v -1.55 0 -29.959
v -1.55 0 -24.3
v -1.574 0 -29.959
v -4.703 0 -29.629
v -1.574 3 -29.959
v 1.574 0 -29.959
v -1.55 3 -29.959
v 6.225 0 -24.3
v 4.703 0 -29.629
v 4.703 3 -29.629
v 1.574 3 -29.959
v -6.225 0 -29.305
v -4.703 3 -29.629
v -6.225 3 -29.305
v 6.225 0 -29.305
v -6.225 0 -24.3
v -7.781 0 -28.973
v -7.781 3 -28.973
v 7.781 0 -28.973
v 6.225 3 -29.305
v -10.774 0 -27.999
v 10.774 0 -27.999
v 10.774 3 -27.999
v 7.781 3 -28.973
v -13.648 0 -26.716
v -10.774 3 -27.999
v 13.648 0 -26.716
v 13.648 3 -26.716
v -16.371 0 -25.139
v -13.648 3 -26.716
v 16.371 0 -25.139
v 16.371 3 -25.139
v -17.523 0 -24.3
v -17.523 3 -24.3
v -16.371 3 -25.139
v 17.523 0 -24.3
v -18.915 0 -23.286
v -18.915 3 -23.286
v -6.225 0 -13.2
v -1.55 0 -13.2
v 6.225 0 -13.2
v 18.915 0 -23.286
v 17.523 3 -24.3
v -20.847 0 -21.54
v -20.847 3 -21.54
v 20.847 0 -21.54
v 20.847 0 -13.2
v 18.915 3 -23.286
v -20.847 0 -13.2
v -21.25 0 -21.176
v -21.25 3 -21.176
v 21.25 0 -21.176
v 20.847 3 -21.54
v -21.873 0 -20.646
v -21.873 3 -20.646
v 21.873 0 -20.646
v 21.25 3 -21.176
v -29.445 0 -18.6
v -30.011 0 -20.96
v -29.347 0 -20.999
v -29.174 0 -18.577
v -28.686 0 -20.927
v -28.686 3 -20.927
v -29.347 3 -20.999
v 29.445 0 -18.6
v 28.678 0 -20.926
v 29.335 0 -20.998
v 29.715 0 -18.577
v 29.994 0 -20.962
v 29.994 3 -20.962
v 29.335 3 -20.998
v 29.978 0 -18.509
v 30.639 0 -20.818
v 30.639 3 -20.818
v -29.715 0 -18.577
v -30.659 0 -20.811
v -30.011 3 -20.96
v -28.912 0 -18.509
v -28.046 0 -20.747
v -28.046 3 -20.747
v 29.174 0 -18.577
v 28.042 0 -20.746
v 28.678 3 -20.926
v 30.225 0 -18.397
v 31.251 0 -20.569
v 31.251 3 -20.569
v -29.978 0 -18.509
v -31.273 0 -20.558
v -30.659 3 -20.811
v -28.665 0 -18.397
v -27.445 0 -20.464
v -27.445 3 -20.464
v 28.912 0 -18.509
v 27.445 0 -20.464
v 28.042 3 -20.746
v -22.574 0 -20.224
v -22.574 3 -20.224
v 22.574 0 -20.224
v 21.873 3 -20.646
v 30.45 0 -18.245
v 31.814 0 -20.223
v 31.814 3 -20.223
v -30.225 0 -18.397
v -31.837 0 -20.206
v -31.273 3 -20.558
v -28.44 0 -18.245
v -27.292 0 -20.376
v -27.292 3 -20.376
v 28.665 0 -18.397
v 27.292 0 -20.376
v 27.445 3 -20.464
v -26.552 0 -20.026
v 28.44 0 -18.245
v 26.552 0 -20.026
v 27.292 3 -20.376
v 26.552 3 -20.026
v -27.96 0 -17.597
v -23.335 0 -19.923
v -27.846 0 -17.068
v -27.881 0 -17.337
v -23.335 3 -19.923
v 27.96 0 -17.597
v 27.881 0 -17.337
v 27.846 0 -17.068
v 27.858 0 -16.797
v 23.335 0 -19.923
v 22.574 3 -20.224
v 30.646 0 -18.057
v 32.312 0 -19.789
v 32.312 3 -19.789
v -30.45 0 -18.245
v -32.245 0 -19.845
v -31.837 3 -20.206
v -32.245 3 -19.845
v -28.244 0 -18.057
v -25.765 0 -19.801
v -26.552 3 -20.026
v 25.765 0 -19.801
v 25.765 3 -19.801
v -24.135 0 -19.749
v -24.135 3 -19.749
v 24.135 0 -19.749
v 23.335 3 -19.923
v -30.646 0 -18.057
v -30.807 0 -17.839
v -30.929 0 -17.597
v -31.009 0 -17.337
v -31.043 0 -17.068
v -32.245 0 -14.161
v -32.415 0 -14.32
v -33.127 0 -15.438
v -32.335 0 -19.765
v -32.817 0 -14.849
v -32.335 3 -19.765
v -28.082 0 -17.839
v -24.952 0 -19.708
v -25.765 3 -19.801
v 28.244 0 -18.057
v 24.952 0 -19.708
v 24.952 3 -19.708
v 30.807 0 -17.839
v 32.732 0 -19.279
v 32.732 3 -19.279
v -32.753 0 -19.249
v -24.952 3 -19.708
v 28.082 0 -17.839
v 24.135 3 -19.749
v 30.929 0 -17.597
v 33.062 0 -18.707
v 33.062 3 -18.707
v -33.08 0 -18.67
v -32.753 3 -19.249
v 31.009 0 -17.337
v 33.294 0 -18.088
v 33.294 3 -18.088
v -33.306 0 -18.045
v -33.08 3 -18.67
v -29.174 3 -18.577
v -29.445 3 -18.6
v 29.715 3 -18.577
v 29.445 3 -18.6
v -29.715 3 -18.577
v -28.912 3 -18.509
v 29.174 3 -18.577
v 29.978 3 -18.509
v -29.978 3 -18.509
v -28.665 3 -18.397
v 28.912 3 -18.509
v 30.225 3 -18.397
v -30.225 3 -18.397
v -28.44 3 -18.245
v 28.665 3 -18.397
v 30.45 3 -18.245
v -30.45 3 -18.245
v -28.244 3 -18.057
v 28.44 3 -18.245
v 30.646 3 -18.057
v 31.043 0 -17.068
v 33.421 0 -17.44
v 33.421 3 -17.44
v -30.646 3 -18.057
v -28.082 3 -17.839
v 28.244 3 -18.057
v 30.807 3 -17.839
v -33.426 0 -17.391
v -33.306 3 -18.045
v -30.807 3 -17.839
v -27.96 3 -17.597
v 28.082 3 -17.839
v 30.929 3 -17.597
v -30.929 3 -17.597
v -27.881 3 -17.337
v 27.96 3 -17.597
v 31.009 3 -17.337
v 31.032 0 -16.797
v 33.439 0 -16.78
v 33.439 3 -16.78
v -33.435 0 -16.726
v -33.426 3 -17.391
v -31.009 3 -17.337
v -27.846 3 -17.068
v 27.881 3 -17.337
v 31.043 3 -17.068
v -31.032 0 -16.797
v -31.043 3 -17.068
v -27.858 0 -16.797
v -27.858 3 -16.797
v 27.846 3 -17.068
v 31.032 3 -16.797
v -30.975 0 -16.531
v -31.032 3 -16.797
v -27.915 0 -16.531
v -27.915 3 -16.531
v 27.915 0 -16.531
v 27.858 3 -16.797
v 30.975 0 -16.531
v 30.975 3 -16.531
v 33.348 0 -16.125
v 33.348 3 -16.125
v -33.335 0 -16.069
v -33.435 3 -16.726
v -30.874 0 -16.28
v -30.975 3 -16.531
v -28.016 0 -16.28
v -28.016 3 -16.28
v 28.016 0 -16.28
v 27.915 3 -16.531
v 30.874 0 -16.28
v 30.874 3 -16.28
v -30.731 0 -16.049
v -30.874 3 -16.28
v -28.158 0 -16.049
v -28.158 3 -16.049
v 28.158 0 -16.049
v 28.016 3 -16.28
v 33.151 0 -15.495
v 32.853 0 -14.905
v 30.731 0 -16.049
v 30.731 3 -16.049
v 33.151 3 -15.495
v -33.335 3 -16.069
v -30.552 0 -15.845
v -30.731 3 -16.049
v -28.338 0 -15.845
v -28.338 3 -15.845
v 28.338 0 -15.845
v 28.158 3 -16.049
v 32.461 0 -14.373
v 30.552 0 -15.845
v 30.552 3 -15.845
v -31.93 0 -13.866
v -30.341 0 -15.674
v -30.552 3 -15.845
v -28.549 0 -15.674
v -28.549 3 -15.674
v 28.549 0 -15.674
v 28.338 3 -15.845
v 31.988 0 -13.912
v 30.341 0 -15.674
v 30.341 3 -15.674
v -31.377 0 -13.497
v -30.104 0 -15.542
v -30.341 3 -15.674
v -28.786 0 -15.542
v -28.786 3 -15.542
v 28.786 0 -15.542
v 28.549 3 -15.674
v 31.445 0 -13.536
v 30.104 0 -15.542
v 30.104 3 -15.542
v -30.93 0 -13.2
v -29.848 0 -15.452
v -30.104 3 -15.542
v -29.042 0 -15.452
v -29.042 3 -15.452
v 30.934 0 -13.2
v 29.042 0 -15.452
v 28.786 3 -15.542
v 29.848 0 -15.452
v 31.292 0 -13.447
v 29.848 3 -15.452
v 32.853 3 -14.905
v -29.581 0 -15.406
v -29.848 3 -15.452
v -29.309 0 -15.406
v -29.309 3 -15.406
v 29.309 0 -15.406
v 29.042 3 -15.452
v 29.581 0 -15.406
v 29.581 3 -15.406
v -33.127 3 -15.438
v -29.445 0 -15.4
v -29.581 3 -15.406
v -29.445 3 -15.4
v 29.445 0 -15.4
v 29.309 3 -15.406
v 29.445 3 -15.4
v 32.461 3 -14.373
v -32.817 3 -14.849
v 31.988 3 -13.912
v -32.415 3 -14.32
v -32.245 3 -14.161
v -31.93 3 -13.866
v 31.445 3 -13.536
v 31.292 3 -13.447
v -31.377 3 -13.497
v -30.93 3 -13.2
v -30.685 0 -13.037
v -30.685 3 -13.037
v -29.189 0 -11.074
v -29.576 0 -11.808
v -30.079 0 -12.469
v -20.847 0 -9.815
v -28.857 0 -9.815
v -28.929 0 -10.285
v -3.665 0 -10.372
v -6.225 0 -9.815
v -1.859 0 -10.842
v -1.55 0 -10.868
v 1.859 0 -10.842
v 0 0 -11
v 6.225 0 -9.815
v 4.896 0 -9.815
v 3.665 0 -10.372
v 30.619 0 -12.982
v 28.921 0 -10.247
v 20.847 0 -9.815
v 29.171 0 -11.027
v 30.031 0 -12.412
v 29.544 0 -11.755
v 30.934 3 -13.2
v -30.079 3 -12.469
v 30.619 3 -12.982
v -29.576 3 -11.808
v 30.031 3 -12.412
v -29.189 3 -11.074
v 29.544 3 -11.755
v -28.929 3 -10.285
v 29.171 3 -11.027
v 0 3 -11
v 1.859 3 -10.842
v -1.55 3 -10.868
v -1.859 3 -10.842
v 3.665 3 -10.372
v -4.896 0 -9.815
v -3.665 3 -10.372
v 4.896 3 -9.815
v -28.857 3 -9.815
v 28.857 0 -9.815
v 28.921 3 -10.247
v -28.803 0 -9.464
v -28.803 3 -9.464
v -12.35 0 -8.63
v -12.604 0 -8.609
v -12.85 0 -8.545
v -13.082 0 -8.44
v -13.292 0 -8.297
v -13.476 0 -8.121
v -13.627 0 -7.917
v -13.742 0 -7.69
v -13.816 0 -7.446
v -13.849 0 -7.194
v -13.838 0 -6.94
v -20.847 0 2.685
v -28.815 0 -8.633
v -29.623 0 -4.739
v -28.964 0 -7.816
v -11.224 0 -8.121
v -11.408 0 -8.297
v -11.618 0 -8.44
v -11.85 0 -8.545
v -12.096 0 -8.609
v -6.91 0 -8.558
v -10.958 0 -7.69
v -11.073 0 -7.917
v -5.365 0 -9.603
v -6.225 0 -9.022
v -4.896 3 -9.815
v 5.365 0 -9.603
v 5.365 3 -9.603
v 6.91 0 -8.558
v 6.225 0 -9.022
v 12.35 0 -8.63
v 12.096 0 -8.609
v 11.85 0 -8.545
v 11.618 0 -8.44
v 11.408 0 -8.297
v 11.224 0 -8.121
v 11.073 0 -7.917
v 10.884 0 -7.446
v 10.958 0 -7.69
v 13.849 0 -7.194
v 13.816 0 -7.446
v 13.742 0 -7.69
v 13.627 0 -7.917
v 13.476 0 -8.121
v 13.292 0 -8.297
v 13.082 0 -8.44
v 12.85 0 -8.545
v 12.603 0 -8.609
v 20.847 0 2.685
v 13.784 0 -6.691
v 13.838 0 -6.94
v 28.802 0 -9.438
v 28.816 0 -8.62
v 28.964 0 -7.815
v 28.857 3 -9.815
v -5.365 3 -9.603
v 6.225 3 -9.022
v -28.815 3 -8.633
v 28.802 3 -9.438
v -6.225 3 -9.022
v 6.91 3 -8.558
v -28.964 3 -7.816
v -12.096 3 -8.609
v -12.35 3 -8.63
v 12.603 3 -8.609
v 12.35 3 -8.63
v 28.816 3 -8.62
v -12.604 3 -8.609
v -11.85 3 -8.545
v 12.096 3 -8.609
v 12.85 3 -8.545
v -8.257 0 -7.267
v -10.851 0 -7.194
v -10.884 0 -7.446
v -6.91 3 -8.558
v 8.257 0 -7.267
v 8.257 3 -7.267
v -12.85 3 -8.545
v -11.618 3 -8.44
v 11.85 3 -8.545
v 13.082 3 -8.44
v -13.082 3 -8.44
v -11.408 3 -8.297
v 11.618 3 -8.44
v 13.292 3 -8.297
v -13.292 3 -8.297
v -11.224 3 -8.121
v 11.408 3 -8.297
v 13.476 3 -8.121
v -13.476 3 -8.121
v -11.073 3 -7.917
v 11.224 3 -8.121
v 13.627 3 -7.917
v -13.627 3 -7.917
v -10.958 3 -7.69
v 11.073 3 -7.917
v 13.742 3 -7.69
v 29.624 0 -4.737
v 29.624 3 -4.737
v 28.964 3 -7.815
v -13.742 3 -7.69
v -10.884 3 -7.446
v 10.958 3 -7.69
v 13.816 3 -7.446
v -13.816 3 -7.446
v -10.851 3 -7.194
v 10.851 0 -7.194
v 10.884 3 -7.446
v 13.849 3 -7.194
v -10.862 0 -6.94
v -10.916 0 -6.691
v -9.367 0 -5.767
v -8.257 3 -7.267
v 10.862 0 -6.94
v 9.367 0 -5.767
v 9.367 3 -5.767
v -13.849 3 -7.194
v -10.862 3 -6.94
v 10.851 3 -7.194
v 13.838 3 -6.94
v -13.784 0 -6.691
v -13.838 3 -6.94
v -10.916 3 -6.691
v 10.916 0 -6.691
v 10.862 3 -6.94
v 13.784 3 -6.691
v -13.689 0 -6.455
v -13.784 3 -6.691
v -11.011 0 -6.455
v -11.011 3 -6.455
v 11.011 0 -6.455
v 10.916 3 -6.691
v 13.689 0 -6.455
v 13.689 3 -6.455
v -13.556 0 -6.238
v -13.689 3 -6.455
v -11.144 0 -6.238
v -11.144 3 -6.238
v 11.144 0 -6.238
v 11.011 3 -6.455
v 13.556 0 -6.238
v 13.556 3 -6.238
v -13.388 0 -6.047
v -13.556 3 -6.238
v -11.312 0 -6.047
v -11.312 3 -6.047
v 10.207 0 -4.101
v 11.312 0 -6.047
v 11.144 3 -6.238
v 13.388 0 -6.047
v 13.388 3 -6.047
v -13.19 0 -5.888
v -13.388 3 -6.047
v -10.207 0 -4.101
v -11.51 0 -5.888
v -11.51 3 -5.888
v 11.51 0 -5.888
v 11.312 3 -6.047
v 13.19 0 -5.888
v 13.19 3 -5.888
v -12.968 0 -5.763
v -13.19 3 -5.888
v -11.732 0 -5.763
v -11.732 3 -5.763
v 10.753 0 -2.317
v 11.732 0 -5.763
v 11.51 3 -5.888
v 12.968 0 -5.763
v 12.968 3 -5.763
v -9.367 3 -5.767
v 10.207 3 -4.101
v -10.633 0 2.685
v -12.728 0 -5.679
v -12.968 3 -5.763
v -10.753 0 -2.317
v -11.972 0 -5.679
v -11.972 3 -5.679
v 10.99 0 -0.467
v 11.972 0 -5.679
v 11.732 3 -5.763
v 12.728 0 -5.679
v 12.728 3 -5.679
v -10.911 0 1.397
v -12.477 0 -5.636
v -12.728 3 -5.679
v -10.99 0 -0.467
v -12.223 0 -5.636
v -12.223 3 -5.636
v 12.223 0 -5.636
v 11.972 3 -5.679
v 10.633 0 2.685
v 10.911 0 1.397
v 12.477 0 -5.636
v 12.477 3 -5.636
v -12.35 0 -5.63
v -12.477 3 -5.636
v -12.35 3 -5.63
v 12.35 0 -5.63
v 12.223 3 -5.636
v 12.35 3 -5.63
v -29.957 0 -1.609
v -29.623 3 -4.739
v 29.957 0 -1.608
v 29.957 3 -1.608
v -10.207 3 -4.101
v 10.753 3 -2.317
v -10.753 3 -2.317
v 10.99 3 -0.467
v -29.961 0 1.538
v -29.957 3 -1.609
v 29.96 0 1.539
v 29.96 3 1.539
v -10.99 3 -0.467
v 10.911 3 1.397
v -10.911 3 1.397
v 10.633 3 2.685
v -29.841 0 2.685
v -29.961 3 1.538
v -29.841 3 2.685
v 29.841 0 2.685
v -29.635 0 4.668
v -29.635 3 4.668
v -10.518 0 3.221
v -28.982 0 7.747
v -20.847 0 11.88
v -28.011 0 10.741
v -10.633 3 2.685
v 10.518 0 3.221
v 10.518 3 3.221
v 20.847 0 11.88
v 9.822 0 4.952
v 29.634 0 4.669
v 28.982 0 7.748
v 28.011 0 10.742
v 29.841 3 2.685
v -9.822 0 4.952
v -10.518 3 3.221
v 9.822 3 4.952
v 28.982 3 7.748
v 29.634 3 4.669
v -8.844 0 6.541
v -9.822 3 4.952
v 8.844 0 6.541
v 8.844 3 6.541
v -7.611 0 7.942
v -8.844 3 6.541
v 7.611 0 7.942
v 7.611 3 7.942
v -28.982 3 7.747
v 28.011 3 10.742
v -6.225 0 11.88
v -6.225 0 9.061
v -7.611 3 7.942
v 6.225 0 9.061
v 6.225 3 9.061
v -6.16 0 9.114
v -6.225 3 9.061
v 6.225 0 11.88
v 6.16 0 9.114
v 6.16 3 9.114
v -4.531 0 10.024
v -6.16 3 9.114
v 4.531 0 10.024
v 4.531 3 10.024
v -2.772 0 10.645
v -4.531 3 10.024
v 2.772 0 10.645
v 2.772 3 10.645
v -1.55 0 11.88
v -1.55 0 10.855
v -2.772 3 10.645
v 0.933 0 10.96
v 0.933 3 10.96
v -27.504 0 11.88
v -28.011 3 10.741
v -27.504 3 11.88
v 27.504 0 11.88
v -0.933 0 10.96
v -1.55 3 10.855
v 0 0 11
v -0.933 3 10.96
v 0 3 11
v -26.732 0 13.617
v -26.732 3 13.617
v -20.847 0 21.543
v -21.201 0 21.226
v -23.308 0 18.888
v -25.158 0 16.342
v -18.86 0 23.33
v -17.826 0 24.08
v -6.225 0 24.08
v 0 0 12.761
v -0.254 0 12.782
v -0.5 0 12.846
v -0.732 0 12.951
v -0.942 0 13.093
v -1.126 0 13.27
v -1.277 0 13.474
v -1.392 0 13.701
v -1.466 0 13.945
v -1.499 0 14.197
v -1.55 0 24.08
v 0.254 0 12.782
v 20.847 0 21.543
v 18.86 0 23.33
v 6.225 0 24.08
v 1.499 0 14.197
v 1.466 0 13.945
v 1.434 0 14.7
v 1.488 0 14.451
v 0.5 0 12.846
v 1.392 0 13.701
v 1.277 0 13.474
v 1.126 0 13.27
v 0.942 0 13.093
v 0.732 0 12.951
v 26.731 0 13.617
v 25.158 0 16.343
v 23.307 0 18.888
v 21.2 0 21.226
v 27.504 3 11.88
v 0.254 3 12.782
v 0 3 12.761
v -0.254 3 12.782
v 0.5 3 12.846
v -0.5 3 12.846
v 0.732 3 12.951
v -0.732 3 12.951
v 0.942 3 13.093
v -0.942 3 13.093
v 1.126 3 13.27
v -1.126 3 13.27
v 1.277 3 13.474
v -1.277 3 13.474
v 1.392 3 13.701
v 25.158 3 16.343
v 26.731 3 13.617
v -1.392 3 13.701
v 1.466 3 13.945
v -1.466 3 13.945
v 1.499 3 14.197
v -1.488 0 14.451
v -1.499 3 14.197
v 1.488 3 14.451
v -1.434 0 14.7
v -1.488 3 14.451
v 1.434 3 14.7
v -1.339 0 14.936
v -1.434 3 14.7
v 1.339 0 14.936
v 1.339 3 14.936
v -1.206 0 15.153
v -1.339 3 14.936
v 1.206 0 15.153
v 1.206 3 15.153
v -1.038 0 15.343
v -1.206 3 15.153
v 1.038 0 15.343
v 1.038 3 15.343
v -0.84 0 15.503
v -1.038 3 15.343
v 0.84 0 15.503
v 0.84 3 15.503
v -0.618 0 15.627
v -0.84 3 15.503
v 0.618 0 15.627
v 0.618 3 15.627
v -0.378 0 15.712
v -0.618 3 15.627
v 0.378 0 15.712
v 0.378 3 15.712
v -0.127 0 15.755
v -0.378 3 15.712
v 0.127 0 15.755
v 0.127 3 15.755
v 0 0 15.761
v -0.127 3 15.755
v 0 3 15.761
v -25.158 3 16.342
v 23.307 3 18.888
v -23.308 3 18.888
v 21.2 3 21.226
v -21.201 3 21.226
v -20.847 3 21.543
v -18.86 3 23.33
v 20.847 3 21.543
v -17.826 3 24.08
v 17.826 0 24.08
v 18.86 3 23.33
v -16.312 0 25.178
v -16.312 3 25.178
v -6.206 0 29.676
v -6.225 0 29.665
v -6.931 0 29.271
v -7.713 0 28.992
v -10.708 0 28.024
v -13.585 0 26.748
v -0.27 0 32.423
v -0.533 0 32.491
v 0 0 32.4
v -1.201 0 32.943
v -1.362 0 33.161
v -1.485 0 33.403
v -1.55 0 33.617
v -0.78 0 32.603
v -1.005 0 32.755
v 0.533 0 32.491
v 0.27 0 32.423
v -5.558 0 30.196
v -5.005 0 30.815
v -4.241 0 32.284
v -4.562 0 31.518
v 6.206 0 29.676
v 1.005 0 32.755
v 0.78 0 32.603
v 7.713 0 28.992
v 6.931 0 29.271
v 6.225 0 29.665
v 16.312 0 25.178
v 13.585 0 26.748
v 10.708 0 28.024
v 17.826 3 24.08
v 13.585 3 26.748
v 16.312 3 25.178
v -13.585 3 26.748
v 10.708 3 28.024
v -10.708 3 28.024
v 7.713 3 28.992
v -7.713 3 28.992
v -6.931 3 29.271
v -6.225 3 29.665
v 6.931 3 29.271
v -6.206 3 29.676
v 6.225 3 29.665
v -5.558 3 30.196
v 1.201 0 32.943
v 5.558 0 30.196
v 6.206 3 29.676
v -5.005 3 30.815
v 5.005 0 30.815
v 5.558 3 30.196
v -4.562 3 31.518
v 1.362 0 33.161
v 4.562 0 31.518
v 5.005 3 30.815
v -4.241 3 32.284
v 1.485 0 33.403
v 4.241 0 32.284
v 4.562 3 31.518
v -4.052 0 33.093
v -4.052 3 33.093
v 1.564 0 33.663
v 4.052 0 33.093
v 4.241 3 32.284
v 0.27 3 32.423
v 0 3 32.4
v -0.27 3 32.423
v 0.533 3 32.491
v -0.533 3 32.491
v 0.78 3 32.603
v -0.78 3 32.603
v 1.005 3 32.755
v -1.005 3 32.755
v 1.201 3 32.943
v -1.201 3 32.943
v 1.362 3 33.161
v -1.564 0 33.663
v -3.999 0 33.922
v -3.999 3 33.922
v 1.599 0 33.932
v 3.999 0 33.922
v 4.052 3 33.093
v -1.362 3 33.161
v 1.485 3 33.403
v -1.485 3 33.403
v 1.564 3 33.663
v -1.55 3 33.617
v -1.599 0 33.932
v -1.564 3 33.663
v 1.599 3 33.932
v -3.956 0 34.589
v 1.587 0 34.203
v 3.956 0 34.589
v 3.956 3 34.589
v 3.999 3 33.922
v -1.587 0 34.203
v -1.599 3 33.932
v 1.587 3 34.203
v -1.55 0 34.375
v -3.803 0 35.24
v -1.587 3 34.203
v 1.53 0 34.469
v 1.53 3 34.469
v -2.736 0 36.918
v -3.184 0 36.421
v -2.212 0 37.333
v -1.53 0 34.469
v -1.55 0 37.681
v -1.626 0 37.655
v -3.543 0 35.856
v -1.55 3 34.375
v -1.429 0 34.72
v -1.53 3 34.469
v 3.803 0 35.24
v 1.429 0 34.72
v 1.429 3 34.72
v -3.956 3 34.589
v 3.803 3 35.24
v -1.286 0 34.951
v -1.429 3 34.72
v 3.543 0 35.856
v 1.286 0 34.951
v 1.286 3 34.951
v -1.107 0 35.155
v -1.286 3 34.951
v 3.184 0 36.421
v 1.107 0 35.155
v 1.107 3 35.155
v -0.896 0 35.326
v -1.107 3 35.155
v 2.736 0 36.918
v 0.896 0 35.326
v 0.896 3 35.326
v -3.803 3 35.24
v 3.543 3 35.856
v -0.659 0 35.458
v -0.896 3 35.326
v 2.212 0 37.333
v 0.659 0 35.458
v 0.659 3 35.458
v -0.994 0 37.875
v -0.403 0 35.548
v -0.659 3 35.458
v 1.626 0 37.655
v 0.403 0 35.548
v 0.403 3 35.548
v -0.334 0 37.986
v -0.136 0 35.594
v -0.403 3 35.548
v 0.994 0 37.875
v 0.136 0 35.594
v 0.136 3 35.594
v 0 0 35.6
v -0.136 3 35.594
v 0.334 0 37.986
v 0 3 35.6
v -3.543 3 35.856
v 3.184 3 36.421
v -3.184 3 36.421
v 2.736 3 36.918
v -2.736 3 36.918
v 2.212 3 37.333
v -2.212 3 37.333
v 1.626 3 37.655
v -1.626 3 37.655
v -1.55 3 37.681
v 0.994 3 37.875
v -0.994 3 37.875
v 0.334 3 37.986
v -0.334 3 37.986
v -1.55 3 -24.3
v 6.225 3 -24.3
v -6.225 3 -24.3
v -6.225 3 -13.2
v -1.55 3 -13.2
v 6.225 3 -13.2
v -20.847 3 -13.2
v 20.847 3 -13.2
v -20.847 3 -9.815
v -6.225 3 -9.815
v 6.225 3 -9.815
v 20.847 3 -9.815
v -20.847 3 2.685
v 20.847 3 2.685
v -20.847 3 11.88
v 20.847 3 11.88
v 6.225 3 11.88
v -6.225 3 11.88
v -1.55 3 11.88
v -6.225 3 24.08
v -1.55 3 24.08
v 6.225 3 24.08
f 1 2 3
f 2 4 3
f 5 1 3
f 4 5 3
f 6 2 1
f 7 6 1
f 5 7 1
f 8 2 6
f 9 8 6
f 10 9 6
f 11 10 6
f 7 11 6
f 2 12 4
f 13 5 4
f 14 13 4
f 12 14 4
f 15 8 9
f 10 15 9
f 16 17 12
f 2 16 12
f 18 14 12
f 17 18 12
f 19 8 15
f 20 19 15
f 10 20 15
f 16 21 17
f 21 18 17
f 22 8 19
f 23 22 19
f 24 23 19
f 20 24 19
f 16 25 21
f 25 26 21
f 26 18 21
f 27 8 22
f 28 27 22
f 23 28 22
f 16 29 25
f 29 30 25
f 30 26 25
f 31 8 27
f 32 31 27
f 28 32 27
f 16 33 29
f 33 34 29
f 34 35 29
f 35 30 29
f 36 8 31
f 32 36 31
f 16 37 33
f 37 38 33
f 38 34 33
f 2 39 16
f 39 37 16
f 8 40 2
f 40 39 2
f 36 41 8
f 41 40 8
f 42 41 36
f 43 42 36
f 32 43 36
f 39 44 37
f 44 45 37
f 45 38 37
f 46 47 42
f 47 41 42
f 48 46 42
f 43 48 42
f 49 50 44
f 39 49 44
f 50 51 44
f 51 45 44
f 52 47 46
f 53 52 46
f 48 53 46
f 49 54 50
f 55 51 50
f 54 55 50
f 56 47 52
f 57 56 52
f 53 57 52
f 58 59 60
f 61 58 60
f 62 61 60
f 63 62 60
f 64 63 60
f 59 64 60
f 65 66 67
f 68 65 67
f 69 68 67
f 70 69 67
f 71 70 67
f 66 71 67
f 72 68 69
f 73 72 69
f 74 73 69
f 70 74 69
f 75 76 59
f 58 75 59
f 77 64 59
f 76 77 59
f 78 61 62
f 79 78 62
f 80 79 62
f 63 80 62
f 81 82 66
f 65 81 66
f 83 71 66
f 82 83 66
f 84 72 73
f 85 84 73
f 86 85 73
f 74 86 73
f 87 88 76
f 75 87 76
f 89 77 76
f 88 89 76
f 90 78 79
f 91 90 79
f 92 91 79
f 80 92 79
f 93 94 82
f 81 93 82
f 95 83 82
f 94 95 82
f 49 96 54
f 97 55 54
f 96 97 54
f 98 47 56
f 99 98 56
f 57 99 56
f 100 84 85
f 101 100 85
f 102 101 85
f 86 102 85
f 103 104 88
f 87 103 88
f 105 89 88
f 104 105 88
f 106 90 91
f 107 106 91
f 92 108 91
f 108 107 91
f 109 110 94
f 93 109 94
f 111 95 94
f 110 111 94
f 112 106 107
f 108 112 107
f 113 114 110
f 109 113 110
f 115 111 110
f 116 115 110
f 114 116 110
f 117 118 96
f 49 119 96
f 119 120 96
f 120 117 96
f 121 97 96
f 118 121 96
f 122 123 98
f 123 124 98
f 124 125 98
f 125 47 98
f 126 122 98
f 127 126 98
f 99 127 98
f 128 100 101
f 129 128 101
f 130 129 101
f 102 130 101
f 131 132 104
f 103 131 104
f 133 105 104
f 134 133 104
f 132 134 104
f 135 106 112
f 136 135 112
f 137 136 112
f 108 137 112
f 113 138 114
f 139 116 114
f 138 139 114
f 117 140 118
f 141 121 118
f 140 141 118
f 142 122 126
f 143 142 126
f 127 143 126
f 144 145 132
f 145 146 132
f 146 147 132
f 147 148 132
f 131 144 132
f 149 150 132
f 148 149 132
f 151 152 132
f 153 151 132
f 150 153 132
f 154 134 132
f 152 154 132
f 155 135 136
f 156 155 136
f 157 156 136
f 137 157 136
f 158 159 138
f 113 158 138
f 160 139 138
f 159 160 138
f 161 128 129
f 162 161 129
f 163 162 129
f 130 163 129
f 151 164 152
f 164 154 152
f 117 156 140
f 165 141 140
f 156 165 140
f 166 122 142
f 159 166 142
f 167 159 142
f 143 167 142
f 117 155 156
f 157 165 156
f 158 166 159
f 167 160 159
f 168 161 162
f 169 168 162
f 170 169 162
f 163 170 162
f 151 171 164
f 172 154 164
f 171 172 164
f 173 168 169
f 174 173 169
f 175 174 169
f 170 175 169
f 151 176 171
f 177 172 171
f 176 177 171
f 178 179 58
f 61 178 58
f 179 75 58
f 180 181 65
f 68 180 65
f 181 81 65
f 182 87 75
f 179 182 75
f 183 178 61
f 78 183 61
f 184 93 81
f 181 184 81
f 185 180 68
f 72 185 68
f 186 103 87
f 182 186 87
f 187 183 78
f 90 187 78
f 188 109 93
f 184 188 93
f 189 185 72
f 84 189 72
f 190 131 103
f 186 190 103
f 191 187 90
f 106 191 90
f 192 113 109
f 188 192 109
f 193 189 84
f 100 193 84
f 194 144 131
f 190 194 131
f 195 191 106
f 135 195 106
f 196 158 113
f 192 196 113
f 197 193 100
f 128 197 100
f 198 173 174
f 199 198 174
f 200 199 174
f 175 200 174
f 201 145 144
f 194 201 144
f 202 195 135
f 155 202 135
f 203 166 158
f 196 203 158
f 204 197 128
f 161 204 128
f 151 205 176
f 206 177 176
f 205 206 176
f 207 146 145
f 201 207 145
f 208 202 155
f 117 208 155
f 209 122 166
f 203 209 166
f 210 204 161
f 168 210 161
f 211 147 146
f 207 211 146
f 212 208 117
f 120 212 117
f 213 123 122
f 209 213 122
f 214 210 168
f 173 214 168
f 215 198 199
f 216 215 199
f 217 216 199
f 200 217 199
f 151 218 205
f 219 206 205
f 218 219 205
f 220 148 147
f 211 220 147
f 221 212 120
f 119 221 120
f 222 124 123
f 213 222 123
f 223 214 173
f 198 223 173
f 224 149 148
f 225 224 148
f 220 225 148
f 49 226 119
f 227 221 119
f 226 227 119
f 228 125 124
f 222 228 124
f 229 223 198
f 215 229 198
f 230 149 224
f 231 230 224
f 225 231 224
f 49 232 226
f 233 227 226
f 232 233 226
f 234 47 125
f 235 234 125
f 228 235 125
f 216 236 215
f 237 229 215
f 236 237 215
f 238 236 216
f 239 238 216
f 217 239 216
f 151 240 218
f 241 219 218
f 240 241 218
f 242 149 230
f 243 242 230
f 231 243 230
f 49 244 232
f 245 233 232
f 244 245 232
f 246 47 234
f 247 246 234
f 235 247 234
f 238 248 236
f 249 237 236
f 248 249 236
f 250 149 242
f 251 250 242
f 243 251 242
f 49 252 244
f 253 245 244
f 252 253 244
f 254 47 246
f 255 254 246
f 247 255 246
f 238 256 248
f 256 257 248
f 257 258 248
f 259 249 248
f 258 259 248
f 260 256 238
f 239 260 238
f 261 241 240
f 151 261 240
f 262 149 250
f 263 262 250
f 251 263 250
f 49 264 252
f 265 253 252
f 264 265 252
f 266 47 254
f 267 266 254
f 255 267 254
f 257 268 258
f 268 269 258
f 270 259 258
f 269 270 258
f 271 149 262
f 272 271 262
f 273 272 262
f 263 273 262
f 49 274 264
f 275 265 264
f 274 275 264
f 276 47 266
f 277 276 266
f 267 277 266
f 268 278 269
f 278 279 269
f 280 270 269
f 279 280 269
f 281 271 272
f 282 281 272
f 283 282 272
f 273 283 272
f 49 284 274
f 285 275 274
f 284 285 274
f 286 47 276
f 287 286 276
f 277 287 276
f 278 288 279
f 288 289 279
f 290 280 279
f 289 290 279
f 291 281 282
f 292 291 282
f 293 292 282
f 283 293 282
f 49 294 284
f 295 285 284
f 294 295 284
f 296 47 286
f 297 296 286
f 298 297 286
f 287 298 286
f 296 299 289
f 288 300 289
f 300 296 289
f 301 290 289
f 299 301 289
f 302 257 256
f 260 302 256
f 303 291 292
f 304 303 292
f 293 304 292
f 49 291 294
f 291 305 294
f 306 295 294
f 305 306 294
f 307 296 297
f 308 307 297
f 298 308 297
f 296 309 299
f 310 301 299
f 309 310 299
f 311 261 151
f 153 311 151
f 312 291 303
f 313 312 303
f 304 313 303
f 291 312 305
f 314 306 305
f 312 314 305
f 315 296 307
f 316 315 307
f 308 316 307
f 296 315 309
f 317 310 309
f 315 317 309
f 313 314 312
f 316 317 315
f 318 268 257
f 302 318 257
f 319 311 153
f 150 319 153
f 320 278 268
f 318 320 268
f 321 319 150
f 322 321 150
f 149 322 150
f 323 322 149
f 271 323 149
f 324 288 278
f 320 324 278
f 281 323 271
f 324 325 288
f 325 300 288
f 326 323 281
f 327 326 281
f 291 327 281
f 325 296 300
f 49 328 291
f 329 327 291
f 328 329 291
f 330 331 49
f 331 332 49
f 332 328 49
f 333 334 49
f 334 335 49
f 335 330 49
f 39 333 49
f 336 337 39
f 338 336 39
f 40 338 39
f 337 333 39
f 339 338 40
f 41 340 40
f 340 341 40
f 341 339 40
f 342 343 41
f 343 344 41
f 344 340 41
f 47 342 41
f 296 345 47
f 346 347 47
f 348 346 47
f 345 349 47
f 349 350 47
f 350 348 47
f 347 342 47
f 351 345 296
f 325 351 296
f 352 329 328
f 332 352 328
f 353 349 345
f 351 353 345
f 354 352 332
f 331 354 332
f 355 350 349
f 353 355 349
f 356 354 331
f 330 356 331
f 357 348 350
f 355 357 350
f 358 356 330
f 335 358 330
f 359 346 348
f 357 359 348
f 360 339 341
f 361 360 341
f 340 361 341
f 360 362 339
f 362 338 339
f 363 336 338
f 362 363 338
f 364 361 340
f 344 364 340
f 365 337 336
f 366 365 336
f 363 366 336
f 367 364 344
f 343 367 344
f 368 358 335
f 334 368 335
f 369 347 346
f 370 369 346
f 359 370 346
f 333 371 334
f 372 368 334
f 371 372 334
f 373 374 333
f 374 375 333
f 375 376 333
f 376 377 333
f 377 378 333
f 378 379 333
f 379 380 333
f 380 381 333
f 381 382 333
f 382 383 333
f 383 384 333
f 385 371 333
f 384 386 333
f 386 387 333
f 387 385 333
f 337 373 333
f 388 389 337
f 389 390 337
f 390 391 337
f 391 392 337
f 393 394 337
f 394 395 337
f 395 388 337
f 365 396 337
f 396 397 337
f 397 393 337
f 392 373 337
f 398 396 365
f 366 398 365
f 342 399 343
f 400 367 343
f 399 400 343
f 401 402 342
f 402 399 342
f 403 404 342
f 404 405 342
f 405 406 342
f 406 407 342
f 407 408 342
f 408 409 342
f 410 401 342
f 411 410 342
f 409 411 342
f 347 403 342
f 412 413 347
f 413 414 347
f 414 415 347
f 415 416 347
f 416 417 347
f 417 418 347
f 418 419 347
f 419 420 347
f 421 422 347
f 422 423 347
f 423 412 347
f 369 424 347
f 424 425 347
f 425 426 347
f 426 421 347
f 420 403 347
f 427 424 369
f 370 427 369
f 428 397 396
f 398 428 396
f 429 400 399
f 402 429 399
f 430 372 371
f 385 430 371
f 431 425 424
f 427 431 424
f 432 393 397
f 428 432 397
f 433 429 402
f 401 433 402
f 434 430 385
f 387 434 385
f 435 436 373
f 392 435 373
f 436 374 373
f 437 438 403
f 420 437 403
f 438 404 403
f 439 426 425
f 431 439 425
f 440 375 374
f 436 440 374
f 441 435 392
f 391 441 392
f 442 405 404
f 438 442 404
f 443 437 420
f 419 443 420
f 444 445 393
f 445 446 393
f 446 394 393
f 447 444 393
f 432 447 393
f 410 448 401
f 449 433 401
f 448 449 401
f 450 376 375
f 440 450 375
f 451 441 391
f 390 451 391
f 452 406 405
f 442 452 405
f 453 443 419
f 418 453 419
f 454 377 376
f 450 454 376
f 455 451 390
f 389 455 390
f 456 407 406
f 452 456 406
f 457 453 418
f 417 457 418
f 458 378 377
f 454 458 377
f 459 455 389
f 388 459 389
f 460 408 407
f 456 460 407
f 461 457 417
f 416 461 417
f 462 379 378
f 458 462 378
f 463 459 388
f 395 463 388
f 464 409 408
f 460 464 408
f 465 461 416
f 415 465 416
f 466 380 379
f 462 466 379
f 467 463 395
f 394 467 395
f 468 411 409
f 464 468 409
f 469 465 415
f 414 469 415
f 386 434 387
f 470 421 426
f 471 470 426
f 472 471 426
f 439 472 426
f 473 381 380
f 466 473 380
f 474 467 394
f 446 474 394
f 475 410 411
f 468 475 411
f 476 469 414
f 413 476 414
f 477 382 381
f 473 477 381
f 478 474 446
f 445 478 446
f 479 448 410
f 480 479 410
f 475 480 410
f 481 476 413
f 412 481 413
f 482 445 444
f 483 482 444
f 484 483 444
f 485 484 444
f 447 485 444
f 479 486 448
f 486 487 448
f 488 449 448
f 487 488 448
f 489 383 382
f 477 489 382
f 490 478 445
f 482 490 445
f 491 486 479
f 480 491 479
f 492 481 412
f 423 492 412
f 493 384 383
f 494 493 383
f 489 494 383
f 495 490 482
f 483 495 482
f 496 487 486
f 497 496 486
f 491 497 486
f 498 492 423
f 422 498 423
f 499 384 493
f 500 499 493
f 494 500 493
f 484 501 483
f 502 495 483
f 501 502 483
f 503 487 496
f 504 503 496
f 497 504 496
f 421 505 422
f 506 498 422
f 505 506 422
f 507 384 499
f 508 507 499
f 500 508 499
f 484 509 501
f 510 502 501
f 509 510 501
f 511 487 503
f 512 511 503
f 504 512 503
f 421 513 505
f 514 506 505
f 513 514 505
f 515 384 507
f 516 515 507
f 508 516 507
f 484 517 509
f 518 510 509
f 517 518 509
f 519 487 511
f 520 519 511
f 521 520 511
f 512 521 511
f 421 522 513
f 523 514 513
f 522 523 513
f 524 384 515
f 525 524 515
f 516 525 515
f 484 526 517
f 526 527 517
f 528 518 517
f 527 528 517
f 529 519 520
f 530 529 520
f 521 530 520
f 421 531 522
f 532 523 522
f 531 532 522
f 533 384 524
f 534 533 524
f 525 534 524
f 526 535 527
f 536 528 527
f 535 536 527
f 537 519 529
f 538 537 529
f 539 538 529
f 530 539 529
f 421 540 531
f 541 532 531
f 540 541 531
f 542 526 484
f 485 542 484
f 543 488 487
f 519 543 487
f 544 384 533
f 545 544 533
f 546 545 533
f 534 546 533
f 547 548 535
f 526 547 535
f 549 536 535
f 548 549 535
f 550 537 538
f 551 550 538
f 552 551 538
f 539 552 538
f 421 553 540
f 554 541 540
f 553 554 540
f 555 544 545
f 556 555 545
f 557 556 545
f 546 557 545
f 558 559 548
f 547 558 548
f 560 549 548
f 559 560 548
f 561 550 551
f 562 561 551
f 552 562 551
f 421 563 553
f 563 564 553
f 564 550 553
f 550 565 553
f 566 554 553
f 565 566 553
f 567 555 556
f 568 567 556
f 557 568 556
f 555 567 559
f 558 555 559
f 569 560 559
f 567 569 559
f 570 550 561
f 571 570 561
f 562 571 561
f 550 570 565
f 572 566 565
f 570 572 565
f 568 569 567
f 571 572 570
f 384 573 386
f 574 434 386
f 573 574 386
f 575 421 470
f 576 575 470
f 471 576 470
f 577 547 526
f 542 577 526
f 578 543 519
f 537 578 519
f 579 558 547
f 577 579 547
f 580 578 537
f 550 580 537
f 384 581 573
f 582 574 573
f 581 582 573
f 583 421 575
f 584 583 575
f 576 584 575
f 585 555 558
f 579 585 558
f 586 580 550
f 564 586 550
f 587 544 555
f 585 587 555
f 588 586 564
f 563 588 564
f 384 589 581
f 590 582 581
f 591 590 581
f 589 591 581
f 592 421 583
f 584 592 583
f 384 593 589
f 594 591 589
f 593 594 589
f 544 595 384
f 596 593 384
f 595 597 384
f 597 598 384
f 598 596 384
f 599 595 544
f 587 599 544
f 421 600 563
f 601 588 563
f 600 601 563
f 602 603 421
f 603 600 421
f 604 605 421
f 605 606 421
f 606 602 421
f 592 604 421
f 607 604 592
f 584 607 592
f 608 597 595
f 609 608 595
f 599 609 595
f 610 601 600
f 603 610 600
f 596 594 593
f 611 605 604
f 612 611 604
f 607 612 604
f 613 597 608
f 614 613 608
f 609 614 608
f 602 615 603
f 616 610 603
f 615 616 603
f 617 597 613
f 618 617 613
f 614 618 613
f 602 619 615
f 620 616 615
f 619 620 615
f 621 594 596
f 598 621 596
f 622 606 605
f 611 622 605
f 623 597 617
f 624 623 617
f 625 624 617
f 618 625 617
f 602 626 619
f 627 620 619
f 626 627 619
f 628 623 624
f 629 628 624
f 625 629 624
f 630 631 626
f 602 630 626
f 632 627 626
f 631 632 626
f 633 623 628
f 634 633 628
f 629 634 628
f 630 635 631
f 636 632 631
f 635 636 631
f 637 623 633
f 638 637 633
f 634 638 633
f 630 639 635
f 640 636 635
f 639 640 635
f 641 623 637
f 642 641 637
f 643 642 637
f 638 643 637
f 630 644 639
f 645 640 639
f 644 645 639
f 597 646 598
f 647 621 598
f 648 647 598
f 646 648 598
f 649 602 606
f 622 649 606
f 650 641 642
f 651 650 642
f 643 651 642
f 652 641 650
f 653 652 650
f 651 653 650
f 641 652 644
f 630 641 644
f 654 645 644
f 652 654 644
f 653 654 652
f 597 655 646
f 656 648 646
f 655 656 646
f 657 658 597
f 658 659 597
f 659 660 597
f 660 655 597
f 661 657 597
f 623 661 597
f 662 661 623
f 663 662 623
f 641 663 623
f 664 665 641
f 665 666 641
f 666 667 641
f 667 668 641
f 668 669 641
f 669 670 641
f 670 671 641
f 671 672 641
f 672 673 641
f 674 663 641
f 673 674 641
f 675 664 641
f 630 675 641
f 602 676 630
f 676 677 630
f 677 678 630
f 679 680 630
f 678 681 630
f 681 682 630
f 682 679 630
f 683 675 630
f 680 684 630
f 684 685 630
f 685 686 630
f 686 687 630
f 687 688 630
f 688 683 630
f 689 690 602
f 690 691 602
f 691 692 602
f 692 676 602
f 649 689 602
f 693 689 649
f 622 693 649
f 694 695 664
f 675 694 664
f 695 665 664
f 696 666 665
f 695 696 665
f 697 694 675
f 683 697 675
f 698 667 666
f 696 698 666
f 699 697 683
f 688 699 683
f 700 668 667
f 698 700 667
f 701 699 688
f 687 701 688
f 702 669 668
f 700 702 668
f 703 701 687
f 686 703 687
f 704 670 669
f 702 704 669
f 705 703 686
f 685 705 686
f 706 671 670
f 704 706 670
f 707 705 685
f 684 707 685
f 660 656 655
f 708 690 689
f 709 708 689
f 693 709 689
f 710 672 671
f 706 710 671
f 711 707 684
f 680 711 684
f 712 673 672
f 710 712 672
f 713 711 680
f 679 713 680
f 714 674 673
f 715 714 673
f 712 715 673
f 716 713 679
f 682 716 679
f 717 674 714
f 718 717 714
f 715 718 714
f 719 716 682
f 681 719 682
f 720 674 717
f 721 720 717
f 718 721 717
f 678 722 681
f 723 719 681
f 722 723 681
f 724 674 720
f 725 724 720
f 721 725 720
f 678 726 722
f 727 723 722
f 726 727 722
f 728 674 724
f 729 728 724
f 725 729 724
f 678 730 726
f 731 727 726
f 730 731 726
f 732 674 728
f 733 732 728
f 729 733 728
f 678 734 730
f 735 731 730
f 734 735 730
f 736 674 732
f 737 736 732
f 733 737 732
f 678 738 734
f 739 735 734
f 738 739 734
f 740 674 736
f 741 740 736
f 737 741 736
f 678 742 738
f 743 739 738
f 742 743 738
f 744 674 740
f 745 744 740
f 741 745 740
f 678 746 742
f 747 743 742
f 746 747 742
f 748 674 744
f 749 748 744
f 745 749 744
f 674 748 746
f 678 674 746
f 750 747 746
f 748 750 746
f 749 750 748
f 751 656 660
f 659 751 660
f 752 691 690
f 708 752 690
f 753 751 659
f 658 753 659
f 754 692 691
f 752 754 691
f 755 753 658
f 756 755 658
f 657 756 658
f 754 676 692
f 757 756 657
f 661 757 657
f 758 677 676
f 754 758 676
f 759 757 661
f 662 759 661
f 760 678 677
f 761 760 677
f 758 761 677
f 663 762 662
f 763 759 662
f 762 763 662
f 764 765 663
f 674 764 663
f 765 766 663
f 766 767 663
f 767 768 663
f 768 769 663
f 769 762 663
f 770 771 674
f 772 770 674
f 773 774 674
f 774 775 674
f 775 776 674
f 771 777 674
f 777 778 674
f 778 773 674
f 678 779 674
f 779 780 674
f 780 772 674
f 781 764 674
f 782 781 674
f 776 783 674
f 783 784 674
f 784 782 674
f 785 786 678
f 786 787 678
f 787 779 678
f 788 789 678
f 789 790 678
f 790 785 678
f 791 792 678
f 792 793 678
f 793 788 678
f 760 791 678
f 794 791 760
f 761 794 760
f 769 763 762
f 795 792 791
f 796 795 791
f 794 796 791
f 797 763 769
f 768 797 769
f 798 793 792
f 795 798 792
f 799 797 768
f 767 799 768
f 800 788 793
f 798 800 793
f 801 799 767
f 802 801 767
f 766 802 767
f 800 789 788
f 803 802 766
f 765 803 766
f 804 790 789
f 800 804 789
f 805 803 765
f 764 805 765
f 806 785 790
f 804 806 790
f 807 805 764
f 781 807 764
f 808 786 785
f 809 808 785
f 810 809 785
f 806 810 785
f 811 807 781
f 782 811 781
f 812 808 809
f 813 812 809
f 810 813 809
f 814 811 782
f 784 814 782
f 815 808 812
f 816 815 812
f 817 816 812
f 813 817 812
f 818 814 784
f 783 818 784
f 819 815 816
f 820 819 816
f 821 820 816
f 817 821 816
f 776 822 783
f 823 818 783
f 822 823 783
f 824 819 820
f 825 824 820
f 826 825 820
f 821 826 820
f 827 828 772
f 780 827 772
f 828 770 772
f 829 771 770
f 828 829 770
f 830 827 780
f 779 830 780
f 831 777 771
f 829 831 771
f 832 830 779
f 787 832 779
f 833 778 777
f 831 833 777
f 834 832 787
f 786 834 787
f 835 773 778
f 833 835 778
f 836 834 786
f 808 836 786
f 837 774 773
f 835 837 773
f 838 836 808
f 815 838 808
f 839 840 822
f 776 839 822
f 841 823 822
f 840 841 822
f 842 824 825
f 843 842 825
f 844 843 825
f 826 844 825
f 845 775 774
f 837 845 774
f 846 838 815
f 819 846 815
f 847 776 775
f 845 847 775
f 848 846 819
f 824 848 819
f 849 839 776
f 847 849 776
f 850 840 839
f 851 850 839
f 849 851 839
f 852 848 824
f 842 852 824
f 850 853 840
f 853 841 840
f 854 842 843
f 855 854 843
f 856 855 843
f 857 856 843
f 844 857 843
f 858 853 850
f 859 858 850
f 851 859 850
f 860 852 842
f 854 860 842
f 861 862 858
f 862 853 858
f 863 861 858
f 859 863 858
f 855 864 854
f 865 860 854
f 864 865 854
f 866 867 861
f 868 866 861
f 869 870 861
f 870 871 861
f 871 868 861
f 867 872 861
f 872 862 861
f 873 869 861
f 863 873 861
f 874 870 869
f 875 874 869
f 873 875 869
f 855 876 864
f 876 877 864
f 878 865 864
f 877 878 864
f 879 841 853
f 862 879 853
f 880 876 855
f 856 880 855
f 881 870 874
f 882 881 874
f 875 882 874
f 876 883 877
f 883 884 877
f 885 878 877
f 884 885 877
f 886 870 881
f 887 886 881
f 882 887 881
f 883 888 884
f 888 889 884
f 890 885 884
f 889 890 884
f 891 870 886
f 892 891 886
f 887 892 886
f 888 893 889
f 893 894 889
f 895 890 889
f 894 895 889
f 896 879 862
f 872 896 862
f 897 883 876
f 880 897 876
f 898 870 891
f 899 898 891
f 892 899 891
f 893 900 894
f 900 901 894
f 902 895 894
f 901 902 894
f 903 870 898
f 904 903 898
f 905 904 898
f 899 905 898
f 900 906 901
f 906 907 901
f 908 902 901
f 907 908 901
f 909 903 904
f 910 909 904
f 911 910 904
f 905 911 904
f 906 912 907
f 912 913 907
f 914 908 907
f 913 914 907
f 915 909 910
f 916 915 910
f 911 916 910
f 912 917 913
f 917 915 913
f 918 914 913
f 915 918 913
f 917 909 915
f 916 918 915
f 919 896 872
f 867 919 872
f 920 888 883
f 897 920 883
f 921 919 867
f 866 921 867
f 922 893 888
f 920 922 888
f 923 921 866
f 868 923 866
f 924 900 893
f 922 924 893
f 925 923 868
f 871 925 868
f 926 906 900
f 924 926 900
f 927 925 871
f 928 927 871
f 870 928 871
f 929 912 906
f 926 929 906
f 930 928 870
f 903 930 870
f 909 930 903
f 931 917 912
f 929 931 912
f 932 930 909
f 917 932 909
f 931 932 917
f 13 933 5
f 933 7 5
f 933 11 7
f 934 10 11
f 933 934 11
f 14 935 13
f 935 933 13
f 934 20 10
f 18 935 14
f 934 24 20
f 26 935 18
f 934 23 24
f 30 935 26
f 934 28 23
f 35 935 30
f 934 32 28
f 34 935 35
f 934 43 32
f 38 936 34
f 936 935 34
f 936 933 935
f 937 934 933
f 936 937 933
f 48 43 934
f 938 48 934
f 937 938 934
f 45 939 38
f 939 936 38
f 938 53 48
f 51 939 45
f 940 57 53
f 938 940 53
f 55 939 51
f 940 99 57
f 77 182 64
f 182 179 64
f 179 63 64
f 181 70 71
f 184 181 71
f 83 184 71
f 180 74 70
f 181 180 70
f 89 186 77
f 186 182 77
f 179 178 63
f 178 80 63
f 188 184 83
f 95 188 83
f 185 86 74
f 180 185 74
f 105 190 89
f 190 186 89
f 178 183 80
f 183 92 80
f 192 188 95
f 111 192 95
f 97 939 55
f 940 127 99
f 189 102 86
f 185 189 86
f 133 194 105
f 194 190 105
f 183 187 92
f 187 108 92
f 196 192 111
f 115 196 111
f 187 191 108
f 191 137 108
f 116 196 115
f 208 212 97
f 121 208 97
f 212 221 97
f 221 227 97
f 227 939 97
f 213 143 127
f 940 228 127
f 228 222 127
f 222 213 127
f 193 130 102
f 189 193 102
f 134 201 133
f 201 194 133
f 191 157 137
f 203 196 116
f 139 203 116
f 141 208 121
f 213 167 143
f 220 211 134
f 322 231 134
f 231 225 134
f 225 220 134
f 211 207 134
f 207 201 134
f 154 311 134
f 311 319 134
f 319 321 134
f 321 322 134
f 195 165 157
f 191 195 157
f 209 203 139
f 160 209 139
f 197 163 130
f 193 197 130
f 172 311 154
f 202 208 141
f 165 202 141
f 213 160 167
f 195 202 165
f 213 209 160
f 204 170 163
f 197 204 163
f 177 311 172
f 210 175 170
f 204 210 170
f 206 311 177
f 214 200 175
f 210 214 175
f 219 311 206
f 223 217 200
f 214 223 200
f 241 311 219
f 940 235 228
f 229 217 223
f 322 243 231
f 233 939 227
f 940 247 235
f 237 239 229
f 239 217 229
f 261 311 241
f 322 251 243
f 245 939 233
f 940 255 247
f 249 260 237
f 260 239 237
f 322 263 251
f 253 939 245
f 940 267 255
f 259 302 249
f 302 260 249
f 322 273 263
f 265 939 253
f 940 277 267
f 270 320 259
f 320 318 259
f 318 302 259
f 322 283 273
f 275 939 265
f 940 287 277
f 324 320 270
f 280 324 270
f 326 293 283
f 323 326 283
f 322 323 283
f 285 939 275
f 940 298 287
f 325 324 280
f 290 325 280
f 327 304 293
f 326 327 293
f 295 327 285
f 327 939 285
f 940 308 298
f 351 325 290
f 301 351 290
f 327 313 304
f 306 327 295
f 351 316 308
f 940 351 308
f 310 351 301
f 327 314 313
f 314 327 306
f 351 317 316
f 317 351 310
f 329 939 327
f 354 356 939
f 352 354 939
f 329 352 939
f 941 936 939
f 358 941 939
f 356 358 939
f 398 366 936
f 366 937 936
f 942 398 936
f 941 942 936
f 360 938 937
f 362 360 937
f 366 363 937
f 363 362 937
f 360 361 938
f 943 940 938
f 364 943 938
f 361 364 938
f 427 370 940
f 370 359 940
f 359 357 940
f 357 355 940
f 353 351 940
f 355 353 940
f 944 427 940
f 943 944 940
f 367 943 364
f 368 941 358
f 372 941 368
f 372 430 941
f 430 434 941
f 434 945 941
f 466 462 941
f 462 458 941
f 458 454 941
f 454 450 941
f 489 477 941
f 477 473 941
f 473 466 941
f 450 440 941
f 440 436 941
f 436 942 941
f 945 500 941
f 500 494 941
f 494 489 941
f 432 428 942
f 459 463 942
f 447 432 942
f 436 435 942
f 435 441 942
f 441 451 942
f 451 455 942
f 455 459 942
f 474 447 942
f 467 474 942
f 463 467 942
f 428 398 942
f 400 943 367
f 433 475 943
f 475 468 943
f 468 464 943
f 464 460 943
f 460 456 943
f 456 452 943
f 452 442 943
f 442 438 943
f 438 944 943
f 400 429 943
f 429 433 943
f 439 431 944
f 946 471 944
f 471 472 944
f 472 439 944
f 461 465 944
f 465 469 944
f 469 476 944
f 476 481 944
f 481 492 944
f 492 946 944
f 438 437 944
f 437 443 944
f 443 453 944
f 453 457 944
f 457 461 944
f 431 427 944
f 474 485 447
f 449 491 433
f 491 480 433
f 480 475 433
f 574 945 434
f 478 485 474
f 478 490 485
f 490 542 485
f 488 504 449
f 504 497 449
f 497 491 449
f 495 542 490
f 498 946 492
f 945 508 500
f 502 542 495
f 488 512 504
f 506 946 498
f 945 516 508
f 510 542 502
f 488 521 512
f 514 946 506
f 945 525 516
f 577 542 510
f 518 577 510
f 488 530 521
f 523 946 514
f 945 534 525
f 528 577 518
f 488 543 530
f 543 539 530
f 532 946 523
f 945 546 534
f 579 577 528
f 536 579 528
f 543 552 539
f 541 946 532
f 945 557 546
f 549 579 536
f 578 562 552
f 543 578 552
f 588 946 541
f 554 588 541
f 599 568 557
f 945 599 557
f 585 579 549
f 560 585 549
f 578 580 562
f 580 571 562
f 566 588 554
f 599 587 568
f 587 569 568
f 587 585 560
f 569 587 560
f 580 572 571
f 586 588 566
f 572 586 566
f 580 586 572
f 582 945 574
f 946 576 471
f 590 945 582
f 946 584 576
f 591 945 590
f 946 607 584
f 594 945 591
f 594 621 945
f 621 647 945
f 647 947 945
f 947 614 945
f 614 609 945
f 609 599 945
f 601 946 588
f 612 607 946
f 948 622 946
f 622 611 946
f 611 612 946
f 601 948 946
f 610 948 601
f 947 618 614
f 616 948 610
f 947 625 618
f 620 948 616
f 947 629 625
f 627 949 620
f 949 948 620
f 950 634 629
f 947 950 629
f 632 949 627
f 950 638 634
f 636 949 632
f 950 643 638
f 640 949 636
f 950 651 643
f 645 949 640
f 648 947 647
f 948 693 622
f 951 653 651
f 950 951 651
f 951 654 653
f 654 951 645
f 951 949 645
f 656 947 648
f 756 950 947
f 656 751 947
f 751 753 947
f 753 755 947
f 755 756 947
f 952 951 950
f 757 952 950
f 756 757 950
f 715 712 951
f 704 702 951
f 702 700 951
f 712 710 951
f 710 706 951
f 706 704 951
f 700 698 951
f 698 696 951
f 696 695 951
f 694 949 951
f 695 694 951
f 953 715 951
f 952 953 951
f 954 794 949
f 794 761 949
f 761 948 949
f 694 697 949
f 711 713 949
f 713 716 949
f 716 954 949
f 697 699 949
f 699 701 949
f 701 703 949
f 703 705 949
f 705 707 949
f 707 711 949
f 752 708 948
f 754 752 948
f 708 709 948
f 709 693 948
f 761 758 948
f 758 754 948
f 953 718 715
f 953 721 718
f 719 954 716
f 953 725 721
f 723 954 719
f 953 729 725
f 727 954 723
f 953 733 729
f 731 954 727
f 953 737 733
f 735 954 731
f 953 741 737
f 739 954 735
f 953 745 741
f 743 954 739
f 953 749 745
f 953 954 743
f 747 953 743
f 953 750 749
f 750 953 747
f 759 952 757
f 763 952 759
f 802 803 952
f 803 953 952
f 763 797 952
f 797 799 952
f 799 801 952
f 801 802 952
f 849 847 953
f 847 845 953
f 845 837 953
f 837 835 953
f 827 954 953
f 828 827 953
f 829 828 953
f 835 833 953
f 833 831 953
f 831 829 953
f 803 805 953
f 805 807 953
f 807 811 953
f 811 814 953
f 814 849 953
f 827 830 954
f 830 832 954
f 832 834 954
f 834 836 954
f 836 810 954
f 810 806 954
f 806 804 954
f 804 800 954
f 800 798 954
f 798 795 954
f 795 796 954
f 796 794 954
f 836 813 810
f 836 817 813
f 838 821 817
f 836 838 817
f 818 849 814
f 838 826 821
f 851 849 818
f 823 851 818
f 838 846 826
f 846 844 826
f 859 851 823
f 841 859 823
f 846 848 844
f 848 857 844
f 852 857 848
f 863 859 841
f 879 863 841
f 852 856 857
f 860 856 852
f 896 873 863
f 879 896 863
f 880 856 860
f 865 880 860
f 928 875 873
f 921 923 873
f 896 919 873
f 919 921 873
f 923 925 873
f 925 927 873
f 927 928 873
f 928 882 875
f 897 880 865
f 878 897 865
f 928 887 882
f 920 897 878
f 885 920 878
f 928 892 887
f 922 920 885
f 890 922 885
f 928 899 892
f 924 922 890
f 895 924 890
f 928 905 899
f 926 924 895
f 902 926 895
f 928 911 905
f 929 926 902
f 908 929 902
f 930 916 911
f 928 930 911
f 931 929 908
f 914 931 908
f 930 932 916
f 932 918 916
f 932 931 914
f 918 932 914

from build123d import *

# Parameters (mm, degrees)
SKETCH1_R           = 1.6
SKETCH1_R_2         = 11
SKETCH1_R_3         = 1.5
BOSS_EXTRUDE1_DEPTH = 3


with BuildPart() as part:
    # Sketch1 → Boss-Extrude1 (new body)
    with BuildSketch(Plane(origin=(0, 0, 0), x_dir=(1, 0, 0), z_dir=(0, 1, 0))):
        with BuildLine():
            Line((31.291637032, 13.44743291), (31.444863729, 13.535898385))
            ThreePointArc((31.444863729, 13.535898385), (32.908965344, 19), (27.444863729, 20.464101615))
            Line((27.444863729, 20.464101615), (27.291637032, 20.37563614))
            ThreePointArc((27.291637032, 20.37563614), (24.134706135, 19.749106847), (21.249974599, 21.176368422))
            ThreePointArc((21.249974599, 21.176368422), (0, 30), (-21.249974599, 21.176368422))
            ThreePointArc((-21.249974599, 21.176368422), (-24.134706135, 19.749106847), (-27.291637032, 20.37563614))
            Line((-27.291637032, 20.37563614), (-27.444863729, 20.464101615))
            ThreePointArc((-27.444863729, 20.464101615), (-32.92840763, 18.965940459), (-31.376555663, 13.49734868))
            ThreePointArc((-31.376555663, 13.49734868), (-29.189007561, 11.073540998), (-28.963860498, 7.816315311))
            ThreePointArc((-28.963860498, 7.816315311), (-25.980762114, -15), (-7.712802626, -28.991596639))
            ThreePointArc((-7.712802626, -28.991596639), (-5.004535966, -30.815192558), (-3.999230991, -33.921568627))
            ThreePointArc((-3.999230991, -33.921568627), (0, -38), (3.999230991, -33.921568627))
            ThreePointArc((3.999230991, -33.921568627), (5.004535966, -30.815192558), (7.712802626, -28.991596639))
            ThreePointArc((7.712802626, -28.991596639), (25.980378434, -15.000664533), (28.964260313, 7.814833621))
            ThreePointArc((28.964260313, 7.814833621), (29.170581299, 11.026715202), (31.291637032, 13.44743291))
        make_face()
        with Locations(Location((-29.444863729, 17, 0), (0, 0, 270))):
            Circle(SKETCH1_R, mode=Mode.SUBTRACT)
        with Locations(Location((29.444863729, 17, 0), (0, 0, 270))):
            Circle(SKETCH1_R, mode=Mode.SUBTRACT)
        with Locations(Location((0, -34, 0), (0, 0, 270))):
            Circle(SKETCH1_R, mode=Mode.SUBTRACT)
        with Locations(Location((0, 0, 0), (0, 0, 270))):
            Circle(SKETCH1_R_2, mode=Mode.SUBTRACT)
        with Locations(Location((-12.35, 7.130275824, 0), (0, 0, 270))):
            Circle(SKETCH1_R_3, mode=Mode.SUBTRACT)
        with Locations(Location((12.35, 7.130275824, 0), (0, 0, 270))):
            Circle(SKETCH1_R_3, mode=Mode.SUBTRACT)
        with Locations(Location((0, -14.260551649, 0), (0, 0, 270))):
            Circle(SKETCH1_R_3, mode=Mode.SUBTRACT)
    extrude(amount=BOSS_EXTRUDE1_DEPTH)


solid = part.part
